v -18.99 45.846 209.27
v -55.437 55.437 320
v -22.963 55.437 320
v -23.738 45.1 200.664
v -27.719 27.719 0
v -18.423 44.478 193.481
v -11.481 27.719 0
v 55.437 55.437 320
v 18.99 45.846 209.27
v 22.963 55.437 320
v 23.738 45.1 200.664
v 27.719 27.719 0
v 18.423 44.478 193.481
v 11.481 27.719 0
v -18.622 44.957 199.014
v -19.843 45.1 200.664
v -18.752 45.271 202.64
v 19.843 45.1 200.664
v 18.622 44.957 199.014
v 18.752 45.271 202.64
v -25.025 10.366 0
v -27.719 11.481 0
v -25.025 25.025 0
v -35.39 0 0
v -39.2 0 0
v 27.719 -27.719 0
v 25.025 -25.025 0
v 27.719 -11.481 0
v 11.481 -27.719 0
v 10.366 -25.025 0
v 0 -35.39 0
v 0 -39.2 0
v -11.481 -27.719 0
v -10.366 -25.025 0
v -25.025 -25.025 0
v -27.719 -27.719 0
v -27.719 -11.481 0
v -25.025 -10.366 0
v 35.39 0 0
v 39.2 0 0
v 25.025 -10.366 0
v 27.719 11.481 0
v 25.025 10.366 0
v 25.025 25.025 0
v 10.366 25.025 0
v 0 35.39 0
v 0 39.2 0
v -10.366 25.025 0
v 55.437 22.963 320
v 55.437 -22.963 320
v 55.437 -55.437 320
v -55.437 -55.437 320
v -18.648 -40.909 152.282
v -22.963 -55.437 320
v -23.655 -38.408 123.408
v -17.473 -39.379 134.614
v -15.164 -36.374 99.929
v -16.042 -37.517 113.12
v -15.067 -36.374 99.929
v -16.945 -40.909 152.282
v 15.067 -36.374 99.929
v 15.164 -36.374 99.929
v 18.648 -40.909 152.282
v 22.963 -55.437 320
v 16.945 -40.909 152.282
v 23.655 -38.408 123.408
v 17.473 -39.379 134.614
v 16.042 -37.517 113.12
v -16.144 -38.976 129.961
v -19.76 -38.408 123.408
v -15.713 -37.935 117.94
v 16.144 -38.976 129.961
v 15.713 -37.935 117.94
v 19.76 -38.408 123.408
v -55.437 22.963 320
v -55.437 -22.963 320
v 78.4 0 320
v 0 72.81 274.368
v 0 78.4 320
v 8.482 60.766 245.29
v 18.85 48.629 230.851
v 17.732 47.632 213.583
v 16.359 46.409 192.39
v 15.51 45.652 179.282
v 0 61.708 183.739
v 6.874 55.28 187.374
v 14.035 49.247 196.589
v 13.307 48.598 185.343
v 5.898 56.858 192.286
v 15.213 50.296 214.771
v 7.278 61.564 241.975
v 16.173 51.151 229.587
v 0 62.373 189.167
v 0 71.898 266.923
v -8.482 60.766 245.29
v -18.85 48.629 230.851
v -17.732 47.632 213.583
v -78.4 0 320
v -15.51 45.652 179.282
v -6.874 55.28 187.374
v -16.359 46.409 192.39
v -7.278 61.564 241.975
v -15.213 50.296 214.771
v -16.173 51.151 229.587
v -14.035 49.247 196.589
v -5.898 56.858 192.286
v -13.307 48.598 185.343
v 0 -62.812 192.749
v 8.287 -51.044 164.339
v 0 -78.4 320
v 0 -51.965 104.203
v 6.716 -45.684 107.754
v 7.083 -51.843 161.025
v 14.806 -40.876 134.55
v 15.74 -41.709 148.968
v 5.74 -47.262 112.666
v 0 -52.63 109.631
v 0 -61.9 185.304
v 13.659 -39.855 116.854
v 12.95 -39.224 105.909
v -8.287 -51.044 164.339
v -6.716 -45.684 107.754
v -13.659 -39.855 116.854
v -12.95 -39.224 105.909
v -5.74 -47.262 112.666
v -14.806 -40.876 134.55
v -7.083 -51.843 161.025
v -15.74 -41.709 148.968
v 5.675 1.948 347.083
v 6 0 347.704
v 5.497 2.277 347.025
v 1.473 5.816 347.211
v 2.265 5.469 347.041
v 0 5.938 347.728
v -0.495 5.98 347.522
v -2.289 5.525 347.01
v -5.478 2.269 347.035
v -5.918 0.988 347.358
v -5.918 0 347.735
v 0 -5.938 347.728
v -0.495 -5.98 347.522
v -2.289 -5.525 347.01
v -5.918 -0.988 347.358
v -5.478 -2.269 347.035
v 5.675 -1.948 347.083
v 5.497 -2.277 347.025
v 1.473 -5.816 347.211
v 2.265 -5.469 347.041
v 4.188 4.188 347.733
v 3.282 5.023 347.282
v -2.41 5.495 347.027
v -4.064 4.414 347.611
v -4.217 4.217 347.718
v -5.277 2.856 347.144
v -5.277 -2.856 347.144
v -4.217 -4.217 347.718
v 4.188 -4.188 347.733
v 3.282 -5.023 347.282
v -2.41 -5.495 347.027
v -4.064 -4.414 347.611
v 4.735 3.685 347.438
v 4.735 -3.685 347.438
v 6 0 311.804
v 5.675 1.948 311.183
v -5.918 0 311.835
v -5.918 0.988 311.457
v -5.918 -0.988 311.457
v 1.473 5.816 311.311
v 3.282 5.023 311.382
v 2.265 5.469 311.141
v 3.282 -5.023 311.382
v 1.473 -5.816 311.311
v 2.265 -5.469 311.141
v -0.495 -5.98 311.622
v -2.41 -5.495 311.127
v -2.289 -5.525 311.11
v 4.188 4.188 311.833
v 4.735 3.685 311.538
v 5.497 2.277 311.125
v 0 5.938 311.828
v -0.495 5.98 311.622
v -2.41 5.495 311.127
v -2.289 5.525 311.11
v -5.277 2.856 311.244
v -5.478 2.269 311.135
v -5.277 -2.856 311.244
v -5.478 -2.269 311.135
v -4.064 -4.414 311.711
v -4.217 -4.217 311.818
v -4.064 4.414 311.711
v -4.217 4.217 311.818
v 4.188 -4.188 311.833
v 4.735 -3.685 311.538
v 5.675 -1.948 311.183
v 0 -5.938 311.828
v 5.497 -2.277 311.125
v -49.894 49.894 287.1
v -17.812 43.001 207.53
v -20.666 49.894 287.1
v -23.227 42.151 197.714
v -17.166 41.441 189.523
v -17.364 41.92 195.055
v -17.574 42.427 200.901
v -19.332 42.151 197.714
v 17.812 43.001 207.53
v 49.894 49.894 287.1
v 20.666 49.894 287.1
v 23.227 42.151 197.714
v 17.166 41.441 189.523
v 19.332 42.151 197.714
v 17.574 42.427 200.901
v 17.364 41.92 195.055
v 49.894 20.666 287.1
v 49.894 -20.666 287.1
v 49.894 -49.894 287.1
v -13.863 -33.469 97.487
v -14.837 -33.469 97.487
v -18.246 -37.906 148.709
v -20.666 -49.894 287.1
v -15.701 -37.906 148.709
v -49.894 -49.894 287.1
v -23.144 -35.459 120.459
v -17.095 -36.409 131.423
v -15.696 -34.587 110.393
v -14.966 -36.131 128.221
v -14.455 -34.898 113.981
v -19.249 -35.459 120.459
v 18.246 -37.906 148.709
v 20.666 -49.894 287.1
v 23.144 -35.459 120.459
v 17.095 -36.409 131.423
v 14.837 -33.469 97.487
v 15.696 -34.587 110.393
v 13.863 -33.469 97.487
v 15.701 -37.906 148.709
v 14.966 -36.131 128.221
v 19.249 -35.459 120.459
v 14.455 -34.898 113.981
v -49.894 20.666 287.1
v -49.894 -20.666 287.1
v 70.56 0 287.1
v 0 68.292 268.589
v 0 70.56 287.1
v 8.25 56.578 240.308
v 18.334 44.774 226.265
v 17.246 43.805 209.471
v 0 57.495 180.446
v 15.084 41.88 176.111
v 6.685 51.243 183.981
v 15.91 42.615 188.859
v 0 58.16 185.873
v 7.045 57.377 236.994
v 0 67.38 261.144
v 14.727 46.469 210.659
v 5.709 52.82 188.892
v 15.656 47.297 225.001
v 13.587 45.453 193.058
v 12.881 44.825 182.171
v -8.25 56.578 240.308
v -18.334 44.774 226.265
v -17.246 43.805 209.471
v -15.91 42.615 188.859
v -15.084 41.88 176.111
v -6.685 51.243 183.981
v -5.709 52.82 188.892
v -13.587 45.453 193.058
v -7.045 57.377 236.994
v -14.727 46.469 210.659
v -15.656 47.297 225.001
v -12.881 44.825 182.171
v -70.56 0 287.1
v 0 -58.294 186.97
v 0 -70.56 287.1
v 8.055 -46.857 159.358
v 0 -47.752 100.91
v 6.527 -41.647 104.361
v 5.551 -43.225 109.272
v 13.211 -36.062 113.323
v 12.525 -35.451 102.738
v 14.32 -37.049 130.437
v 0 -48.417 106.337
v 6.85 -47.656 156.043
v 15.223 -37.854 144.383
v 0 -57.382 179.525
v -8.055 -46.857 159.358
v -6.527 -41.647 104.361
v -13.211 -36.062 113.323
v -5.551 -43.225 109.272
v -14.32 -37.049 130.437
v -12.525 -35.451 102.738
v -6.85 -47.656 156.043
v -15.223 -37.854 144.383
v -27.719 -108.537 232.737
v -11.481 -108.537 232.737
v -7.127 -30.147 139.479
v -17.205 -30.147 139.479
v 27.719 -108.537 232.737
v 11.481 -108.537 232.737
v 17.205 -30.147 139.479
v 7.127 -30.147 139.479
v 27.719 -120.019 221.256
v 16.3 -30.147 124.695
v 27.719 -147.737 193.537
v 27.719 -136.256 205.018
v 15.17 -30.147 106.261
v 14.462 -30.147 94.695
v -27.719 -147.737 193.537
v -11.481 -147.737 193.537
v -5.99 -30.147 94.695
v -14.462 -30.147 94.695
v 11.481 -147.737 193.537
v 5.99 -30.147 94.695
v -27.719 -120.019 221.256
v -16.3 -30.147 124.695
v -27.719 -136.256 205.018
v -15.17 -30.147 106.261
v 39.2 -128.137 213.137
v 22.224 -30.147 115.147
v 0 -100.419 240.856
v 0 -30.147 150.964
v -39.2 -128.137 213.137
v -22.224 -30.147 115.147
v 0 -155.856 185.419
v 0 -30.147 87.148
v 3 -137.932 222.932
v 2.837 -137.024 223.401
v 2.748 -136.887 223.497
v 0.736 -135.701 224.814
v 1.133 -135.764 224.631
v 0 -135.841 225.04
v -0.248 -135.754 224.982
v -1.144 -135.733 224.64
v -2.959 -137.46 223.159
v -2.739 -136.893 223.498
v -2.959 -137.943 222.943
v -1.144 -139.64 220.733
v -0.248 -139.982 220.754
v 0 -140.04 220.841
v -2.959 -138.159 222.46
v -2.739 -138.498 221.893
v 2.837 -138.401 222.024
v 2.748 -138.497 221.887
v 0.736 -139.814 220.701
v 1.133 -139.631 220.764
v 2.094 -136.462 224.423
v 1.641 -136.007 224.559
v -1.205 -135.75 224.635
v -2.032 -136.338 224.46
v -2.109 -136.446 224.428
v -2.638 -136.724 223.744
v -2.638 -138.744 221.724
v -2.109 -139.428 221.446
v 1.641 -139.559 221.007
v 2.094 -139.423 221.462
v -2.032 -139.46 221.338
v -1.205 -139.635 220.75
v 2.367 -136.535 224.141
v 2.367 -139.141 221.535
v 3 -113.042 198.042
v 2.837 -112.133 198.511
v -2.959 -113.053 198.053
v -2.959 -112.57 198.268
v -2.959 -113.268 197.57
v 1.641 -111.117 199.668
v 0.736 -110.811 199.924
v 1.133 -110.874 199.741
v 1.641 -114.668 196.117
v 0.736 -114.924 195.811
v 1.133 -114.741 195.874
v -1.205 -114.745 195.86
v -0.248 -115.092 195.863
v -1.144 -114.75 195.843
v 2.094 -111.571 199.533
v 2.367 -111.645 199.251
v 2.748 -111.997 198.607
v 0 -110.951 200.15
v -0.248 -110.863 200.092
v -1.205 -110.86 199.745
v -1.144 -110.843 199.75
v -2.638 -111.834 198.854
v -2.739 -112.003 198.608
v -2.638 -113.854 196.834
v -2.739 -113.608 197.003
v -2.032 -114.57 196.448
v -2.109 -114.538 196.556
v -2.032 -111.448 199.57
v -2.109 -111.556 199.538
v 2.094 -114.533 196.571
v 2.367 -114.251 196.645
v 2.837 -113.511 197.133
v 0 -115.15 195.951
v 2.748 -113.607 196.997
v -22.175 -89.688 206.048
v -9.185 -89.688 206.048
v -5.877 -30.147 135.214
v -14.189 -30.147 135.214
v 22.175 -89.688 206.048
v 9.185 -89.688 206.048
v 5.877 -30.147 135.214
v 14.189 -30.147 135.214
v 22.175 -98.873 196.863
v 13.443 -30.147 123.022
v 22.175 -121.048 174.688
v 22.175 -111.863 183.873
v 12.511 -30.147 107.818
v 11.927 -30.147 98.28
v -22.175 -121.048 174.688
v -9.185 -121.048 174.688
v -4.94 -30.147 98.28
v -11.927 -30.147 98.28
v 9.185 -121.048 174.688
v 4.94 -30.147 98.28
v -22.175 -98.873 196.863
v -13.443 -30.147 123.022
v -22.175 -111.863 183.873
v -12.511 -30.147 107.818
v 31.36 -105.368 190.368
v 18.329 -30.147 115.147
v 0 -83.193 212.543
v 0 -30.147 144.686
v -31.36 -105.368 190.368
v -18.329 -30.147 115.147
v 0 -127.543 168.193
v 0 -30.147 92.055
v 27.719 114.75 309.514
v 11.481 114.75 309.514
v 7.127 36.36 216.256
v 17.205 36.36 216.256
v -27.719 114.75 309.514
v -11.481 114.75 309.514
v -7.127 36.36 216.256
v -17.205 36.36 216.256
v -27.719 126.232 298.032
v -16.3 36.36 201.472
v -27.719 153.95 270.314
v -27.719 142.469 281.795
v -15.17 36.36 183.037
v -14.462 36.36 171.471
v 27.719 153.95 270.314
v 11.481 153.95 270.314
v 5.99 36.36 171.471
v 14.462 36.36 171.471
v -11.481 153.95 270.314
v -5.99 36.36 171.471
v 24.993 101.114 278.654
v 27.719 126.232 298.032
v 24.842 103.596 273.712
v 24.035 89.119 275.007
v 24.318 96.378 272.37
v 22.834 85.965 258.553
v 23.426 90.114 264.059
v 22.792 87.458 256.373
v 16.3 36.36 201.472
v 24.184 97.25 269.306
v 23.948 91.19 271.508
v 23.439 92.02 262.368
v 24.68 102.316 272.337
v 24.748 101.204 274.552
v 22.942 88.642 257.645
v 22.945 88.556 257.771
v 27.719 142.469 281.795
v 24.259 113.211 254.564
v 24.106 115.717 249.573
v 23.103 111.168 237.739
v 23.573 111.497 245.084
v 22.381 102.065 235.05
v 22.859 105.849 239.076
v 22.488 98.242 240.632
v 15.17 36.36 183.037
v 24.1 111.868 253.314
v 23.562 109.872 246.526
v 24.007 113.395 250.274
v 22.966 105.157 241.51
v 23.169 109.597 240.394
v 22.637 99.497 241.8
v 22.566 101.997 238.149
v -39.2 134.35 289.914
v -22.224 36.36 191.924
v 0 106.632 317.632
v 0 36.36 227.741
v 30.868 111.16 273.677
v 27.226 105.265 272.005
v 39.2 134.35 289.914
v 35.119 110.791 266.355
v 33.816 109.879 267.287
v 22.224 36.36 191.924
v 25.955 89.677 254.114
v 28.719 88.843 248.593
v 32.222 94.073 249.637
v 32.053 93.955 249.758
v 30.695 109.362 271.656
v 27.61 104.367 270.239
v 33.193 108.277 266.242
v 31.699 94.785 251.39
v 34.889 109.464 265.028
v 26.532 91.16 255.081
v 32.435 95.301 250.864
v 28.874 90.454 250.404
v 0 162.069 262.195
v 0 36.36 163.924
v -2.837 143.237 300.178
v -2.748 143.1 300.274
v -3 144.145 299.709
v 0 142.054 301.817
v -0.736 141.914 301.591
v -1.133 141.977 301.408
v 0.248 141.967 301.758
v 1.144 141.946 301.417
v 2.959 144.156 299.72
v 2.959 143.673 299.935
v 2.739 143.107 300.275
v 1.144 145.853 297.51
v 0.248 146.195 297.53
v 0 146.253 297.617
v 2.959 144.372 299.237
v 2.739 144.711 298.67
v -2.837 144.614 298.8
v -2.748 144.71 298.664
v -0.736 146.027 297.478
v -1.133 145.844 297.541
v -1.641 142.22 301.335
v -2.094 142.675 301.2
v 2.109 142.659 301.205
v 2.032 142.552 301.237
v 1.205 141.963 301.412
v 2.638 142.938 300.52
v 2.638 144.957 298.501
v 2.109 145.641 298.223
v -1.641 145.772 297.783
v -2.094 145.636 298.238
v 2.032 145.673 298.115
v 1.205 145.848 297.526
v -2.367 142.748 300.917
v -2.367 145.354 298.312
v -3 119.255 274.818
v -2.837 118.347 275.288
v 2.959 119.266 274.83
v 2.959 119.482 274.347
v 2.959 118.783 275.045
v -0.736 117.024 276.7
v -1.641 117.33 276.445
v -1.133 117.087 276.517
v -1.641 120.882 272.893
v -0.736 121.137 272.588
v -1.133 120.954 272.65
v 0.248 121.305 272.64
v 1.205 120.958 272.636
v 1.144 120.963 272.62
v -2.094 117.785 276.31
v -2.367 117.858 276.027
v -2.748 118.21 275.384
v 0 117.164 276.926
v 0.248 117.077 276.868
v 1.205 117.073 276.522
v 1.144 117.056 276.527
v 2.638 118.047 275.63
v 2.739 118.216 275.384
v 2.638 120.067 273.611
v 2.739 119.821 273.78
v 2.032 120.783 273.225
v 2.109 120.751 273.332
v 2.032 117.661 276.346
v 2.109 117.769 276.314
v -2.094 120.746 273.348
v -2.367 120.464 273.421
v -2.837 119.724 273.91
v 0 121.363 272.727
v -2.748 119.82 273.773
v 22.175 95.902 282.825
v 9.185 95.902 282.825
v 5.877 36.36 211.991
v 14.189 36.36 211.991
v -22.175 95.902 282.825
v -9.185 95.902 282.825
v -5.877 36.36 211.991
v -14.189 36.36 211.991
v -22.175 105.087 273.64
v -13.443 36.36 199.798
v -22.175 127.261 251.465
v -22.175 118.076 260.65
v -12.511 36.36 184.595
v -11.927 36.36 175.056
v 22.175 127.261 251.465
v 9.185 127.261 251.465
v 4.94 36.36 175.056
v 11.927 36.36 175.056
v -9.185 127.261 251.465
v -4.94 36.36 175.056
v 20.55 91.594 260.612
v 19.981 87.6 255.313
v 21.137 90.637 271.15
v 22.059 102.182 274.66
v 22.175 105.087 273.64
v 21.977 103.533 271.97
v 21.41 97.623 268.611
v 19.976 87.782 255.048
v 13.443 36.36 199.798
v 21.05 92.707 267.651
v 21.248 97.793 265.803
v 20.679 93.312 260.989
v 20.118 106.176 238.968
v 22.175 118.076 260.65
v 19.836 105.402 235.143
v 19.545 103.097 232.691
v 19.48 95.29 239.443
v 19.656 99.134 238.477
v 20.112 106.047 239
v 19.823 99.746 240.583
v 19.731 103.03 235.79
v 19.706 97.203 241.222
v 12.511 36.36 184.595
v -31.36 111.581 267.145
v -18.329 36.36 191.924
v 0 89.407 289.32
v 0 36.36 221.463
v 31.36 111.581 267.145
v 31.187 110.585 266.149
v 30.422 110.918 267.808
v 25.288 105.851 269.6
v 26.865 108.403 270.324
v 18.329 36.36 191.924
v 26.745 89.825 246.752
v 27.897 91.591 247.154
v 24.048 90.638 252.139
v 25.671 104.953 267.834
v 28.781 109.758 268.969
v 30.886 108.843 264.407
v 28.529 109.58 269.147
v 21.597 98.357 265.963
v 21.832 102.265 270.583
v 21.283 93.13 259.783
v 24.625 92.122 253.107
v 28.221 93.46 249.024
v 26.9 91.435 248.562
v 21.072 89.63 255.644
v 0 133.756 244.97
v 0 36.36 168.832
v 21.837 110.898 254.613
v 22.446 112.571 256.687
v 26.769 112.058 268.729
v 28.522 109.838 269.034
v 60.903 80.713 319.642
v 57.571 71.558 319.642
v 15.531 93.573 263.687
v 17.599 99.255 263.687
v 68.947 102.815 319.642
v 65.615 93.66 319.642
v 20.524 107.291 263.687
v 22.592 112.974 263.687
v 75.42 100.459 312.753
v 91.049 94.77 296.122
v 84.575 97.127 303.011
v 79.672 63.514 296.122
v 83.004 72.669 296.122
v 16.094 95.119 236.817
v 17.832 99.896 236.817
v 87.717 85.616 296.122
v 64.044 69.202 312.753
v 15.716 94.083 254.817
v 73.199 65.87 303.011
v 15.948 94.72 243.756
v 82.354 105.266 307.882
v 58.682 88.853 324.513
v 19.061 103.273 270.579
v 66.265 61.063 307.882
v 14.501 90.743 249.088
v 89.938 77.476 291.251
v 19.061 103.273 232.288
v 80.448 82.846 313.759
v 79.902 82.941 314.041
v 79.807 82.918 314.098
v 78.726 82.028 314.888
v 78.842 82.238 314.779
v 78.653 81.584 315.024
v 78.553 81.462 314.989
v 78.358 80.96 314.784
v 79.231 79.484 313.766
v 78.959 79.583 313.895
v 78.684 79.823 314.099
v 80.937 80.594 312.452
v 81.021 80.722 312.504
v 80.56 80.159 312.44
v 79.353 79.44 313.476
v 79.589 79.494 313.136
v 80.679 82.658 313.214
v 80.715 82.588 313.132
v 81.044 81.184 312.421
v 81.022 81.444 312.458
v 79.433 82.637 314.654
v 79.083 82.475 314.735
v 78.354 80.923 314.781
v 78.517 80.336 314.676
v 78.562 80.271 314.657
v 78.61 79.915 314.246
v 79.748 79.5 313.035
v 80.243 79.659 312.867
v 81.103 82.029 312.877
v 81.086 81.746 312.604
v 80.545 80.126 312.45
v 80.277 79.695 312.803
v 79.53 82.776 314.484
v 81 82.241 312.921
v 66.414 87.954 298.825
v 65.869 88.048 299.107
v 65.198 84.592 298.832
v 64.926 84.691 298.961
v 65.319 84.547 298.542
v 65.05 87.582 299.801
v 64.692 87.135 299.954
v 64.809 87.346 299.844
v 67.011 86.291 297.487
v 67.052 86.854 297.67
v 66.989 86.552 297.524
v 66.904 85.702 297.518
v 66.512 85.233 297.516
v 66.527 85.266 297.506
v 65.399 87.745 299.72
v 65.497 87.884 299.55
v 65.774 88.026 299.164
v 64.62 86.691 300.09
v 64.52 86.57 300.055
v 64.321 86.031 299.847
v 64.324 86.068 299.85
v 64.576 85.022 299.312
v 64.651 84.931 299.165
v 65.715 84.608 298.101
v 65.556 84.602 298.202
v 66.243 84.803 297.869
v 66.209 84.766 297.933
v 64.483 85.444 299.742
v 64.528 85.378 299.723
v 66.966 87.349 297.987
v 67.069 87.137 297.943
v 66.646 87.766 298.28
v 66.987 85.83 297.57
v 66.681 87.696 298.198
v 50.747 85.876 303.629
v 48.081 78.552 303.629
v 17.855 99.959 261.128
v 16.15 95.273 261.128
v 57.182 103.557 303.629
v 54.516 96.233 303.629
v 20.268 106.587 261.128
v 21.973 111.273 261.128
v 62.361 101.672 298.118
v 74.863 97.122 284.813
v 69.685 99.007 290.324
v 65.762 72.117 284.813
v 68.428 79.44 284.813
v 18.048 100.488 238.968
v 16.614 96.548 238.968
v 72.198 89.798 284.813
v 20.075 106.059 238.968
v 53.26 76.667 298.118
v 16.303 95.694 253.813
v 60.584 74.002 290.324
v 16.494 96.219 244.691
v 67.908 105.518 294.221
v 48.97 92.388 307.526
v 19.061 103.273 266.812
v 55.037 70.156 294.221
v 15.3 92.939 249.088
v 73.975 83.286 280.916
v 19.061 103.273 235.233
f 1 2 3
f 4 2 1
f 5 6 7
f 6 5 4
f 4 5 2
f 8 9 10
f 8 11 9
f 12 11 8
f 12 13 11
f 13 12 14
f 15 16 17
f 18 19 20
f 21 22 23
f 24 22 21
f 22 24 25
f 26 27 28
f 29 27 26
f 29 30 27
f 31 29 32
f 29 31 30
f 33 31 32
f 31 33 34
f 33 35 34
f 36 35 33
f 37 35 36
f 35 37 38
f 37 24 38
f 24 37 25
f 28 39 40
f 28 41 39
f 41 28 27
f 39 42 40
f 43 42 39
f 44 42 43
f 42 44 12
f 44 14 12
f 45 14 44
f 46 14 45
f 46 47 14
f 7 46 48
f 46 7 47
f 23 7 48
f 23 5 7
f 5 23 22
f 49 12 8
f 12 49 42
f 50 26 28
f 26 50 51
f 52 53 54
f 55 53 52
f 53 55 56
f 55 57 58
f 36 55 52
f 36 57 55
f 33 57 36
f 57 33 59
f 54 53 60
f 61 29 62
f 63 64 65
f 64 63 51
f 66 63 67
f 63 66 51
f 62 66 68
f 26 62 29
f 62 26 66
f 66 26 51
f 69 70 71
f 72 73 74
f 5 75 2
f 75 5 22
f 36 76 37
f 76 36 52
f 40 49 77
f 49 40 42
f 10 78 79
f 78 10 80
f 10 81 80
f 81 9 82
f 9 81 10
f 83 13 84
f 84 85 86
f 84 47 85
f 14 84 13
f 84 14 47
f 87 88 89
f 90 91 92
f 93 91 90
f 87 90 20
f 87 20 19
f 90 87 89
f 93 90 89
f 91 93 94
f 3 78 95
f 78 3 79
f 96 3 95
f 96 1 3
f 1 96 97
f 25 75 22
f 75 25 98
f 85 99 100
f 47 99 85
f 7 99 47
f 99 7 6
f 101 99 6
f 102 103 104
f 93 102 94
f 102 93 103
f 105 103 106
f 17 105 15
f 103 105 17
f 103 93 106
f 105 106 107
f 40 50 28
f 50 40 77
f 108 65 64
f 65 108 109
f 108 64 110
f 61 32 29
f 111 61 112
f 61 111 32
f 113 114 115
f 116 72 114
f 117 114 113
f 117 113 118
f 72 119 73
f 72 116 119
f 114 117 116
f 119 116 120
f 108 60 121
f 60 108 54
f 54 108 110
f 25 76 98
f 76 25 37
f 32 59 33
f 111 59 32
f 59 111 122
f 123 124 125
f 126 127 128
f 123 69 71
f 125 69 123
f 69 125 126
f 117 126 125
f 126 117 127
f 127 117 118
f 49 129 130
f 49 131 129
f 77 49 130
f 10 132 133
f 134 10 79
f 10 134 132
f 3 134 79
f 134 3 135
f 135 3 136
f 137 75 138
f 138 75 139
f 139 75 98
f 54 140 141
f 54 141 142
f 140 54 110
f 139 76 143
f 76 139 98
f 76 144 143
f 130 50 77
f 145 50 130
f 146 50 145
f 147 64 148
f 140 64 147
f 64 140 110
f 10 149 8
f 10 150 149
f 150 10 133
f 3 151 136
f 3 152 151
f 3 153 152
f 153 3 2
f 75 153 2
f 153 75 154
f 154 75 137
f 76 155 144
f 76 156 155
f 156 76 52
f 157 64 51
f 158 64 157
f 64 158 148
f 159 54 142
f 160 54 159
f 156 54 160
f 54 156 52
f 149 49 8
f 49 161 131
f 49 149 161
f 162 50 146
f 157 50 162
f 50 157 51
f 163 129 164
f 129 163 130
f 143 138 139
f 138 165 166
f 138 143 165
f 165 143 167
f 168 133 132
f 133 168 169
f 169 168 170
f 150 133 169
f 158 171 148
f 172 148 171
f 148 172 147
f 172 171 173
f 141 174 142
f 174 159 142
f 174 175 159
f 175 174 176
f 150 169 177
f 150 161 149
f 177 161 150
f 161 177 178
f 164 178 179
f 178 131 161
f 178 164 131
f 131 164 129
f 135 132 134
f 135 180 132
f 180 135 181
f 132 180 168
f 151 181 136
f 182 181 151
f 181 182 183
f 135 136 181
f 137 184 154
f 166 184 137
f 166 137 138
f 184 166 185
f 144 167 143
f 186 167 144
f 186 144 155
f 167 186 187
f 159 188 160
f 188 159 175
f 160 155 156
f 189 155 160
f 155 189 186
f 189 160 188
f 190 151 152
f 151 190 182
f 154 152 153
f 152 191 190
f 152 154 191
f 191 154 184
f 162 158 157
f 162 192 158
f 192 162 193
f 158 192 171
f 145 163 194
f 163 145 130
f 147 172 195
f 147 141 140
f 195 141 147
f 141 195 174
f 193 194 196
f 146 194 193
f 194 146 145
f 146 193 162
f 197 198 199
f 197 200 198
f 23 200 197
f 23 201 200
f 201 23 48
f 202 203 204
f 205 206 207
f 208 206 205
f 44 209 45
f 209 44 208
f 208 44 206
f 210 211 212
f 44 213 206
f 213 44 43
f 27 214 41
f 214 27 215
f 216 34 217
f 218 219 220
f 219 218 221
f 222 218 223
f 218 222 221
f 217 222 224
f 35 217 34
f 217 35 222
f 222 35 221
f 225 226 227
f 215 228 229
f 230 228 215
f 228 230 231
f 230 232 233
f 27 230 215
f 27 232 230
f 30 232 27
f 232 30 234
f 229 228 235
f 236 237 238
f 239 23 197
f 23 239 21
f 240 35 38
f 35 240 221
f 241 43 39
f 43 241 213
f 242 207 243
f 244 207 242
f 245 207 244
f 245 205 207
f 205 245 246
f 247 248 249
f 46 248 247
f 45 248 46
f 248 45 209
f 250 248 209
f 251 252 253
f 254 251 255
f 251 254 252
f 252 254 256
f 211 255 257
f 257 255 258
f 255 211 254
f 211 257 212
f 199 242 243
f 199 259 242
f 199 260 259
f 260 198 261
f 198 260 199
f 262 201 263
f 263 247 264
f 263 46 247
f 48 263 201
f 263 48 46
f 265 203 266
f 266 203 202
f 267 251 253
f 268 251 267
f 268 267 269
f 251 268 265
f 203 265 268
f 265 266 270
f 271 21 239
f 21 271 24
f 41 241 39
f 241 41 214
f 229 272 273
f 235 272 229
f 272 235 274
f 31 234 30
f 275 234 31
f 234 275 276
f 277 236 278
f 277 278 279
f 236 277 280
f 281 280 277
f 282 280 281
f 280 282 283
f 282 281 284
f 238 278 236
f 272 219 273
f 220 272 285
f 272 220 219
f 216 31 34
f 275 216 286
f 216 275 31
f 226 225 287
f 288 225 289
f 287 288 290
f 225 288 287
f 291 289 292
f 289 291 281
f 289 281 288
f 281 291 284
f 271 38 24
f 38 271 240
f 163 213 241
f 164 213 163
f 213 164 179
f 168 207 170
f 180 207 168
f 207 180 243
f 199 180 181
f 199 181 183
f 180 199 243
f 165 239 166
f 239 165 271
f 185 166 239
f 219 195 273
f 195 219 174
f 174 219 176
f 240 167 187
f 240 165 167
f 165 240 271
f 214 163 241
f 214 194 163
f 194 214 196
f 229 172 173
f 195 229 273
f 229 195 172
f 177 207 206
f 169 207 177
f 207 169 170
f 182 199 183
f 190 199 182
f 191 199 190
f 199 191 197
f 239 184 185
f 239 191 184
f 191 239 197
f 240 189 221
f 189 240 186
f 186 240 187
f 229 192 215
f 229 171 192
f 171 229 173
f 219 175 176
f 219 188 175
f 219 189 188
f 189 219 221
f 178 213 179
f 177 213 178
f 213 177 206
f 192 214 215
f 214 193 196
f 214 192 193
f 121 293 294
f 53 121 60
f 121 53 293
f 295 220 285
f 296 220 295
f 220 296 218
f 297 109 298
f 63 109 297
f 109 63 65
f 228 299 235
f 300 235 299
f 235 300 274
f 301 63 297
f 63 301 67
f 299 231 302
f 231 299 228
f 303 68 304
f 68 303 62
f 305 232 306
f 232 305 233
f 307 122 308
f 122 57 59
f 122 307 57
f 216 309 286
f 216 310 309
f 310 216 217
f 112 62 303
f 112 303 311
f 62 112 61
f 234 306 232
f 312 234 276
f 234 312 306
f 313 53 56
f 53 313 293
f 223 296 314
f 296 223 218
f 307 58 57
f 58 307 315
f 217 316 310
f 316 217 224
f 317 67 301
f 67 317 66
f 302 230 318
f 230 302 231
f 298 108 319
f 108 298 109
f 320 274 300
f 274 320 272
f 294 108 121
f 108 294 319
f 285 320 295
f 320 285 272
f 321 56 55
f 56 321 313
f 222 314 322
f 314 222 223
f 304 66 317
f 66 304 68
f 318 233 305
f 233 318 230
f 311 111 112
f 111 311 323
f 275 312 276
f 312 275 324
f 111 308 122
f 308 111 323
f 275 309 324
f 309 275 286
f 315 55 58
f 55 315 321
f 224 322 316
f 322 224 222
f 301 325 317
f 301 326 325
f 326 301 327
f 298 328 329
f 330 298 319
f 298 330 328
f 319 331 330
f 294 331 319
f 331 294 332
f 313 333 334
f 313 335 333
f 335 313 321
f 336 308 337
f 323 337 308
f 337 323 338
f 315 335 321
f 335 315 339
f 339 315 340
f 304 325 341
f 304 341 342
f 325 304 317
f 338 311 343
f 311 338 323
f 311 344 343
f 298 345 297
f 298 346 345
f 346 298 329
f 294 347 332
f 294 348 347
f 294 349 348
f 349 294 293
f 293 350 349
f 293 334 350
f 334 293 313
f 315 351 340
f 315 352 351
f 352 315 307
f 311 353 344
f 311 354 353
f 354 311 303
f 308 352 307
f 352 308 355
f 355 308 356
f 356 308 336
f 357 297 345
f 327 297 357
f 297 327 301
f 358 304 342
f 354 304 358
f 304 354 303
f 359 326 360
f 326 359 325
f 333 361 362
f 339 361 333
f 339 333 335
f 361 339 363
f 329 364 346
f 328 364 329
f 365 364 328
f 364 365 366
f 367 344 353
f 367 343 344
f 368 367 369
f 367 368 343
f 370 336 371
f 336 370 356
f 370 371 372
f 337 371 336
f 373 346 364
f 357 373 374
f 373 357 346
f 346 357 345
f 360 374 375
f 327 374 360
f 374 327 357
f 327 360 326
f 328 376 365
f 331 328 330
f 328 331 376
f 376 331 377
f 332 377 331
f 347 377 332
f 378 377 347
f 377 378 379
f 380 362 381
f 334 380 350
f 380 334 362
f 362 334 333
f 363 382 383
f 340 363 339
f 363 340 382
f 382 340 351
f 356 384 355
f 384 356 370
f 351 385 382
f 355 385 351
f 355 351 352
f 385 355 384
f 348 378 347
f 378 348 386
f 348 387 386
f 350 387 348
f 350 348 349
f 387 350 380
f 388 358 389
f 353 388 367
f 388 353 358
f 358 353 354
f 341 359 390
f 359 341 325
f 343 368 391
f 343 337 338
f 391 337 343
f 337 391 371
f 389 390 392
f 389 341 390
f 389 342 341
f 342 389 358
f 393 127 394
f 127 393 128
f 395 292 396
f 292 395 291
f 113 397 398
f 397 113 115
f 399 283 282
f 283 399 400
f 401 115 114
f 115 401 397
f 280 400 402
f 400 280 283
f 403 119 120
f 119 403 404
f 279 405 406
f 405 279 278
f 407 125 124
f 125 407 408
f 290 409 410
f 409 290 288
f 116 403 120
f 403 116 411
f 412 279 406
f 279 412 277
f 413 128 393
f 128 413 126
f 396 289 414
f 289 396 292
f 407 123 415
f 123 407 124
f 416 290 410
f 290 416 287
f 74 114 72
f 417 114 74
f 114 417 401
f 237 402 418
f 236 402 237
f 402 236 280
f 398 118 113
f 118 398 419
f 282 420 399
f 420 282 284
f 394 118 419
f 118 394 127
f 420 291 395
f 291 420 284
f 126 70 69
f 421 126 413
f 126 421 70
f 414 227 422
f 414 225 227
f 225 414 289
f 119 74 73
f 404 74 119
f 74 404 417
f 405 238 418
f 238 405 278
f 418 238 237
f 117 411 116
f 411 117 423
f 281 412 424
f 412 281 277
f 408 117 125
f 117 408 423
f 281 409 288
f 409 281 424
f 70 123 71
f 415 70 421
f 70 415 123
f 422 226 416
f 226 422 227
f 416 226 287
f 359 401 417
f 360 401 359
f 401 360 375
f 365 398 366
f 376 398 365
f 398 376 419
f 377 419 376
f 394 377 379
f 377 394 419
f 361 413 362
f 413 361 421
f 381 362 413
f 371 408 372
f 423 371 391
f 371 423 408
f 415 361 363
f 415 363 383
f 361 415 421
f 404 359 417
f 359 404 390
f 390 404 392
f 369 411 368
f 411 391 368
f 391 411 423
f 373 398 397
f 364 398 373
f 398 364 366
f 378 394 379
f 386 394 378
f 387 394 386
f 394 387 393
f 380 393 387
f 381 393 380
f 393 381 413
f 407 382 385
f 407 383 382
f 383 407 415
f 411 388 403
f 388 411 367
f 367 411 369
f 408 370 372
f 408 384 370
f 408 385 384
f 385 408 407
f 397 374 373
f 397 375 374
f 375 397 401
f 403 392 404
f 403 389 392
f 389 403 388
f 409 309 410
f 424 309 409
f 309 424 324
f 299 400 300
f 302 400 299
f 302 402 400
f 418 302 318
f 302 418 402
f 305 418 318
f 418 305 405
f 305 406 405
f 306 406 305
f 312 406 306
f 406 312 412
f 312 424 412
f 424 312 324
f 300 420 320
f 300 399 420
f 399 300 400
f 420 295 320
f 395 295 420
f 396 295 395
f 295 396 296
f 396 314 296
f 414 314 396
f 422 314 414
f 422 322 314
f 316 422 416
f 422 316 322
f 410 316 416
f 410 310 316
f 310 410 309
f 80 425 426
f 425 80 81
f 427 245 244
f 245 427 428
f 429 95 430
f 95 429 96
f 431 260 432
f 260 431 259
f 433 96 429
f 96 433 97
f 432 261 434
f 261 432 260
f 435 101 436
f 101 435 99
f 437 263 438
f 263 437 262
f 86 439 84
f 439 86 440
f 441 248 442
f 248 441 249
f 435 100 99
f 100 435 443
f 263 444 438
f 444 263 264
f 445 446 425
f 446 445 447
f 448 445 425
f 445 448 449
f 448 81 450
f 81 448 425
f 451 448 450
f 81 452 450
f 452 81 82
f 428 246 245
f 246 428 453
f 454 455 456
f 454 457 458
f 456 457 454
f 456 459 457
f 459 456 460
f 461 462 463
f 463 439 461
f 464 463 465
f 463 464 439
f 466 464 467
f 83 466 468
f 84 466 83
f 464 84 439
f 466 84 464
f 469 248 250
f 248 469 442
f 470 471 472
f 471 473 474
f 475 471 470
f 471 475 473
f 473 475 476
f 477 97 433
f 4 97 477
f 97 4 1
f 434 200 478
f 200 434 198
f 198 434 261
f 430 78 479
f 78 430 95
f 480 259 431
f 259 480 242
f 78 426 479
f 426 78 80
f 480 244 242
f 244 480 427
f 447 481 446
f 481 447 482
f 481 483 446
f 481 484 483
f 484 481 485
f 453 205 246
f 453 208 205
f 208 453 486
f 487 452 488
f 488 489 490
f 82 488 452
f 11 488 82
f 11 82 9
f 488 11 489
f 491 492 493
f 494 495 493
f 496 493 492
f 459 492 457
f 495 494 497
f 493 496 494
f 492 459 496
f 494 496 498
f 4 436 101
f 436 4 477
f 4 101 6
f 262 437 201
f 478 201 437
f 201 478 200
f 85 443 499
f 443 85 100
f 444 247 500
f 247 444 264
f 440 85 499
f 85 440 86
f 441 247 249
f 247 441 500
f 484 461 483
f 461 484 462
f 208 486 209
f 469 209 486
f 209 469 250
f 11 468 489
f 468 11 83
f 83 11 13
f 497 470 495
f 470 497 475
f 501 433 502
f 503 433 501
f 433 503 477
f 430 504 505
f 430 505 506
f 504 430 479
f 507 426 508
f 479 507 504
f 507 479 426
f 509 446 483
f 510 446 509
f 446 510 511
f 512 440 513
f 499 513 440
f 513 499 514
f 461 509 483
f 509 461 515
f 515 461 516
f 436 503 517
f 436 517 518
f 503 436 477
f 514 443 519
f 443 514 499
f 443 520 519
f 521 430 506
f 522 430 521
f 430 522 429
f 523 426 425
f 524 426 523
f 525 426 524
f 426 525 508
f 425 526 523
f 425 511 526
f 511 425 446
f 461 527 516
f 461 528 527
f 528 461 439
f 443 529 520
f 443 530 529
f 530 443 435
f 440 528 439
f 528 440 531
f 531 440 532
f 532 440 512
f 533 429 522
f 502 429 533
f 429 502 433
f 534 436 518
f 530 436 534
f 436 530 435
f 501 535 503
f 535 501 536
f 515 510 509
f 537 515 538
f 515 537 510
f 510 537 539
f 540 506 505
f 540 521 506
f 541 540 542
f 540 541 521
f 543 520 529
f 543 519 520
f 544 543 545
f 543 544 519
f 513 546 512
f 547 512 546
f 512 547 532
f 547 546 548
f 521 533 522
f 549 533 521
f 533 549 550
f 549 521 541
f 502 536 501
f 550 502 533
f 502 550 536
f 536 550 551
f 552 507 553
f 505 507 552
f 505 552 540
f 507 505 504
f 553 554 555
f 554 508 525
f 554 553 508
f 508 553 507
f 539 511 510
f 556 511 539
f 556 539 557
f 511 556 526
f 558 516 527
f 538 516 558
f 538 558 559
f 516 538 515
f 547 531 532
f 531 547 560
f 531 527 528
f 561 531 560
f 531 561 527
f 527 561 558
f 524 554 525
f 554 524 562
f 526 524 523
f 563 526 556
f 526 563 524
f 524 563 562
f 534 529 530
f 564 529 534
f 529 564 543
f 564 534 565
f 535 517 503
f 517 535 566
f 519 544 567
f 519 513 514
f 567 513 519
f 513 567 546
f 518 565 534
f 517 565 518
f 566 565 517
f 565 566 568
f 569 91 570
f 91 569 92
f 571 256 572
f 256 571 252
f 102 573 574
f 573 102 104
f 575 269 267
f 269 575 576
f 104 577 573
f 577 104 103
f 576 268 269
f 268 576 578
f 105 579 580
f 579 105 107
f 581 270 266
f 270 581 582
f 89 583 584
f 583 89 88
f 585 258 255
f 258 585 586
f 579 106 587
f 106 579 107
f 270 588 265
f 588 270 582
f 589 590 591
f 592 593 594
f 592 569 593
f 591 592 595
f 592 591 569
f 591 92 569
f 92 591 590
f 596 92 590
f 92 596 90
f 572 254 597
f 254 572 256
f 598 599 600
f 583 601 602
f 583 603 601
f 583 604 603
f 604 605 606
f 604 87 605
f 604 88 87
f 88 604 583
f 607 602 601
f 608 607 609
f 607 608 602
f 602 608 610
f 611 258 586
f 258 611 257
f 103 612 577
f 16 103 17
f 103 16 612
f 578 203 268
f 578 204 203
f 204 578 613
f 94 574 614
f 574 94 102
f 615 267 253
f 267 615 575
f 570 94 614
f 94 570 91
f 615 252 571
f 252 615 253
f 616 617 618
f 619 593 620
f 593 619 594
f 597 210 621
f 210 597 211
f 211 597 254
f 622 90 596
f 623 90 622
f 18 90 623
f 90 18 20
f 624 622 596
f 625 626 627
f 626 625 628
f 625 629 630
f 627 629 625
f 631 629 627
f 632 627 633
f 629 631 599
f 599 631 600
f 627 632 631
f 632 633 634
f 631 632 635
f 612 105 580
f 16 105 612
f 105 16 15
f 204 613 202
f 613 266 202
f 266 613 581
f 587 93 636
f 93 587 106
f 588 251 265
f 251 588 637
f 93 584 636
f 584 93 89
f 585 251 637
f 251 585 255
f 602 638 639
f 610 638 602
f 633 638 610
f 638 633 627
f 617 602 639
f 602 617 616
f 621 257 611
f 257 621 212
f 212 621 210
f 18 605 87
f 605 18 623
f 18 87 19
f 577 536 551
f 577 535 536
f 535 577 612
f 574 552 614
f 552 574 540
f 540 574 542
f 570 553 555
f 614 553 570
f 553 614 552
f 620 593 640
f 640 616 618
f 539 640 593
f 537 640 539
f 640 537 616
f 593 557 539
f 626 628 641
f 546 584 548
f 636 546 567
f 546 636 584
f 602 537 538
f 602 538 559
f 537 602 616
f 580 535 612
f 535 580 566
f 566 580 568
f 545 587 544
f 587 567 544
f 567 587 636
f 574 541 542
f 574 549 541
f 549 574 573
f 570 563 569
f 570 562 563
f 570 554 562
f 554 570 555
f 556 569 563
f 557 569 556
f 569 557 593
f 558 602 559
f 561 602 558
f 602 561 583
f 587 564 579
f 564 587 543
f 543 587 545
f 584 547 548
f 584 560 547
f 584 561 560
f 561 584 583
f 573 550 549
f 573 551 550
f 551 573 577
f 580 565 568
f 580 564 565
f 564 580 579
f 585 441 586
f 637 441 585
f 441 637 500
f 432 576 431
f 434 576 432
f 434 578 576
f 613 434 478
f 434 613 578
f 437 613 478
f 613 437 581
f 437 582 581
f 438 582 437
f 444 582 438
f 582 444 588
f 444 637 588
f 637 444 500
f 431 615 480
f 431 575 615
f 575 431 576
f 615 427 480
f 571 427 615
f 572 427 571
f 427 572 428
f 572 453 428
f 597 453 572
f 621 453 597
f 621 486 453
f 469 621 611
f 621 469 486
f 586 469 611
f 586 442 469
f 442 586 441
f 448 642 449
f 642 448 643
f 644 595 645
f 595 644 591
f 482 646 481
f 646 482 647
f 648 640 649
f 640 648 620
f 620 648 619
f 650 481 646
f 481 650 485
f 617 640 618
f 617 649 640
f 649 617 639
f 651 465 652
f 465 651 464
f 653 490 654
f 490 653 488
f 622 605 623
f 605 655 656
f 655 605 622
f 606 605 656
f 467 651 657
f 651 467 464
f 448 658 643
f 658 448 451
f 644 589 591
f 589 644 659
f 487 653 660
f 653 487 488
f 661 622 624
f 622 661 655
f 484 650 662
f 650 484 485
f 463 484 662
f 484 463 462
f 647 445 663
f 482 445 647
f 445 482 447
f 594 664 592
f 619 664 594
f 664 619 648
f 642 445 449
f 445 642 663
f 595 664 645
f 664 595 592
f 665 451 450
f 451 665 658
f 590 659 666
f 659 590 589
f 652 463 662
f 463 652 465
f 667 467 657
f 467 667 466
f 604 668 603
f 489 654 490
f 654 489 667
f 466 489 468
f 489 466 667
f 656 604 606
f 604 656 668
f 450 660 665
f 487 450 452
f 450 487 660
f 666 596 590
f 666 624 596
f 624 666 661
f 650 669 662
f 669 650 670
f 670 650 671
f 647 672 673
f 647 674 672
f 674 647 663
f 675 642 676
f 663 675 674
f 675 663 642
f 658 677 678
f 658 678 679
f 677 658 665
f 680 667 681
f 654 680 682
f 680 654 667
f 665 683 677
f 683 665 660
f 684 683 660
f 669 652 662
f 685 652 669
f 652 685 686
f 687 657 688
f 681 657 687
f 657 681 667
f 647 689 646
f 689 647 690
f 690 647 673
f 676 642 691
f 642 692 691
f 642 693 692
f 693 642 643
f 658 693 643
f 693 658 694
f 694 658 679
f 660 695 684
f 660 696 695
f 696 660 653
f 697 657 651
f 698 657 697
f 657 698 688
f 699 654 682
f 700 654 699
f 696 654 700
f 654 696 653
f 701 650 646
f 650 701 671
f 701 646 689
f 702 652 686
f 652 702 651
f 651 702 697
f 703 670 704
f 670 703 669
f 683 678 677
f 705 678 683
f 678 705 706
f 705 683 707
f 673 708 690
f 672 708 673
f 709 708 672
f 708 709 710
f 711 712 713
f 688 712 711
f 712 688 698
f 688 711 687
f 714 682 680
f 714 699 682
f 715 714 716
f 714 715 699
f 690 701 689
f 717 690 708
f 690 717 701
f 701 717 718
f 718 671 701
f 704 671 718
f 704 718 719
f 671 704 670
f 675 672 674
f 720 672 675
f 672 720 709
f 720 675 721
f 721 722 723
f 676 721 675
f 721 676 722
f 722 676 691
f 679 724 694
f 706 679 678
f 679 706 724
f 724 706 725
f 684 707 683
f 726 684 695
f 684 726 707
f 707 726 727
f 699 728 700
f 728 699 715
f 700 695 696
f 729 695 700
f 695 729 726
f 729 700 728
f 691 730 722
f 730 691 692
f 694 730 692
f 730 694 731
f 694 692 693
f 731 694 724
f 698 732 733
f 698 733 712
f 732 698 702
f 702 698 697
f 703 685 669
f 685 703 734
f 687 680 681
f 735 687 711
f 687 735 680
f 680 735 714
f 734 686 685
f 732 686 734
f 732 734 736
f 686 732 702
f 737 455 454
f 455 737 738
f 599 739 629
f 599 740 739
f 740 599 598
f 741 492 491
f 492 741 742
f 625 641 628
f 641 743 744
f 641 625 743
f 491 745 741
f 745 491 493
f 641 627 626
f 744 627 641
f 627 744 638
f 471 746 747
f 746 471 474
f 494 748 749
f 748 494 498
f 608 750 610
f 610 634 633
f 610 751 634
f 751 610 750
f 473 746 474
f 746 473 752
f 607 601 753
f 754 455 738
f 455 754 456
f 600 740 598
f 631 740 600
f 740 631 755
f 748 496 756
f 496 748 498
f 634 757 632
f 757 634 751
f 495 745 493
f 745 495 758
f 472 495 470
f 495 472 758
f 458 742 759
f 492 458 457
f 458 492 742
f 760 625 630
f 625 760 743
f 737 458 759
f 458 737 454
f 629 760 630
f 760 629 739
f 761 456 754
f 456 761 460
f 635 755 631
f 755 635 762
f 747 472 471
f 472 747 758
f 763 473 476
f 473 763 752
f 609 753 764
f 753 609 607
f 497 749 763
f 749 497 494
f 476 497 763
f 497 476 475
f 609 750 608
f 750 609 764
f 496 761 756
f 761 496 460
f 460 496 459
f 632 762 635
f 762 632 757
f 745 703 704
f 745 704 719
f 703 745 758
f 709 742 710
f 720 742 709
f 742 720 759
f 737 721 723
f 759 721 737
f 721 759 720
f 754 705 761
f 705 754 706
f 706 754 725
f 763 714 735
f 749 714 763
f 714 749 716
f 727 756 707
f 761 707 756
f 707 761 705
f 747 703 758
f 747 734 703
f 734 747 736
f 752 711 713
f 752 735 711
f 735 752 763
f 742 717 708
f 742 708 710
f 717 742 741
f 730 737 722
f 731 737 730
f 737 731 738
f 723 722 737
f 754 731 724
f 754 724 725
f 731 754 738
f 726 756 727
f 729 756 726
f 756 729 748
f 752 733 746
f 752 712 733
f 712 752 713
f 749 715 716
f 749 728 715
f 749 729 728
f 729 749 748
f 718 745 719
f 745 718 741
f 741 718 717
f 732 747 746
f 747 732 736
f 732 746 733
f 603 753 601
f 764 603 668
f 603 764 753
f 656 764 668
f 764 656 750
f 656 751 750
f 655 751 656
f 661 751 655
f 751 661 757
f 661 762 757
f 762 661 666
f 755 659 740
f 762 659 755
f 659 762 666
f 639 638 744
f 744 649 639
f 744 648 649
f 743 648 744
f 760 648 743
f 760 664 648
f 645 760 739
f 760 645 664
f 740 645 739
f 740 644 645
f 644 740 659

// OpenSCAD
module kaktus(){
difference(){
union(){
cylinder(h=320,r1=39.2,r2=78.4,$fn=4);
cylinder(320,39.2,78.4,$fn=4);
cylinder(320,39.2,78.4,$fn=4);
rotate([0,0,45]){
cylinder(h=320,r1=39.2,r2=78.4,$fn=4);
cylinder(320,39.2,78.4,$fn=4);
cylinder(320,39.2,78.4,$fn=4);}

translate([0,0,335])
cylinder(h=30, r1=78.4, r2=0, center=true,$fn=4);

rotate([0,0,45])
translate([0,0,335])
cylinder(h=30, r1=78.4, r2=0, center=true,$fn=4);
} 
cylinder(h=350, r = 6);}

}

module lilKaktus(){
difference(){
    difference(){
scale(0.5)
translate([200,0,0])
kaktus();
scale(0.4)
translate([250,0,-0.5])
kaktus();
}
translate([50,50,-70])
rotate([45,0,0])
cube([100,100,100]);
}}



union(){
    
difference(){
kaktus();
scale(0.9)
translate([0,0,-1])
kaktus();
}

translate([-100,-15,100])
rotate([45,0,0])
lilKaktus();



rotate([0,0,180])
rotate([45,0,0])
translate([-100,110,140])
lilKaktus();

translate([-10,50,240])
scale(0.6)
rotate([0,0,90])
rotate([45,0,340])
lilKaktus();
}

 
